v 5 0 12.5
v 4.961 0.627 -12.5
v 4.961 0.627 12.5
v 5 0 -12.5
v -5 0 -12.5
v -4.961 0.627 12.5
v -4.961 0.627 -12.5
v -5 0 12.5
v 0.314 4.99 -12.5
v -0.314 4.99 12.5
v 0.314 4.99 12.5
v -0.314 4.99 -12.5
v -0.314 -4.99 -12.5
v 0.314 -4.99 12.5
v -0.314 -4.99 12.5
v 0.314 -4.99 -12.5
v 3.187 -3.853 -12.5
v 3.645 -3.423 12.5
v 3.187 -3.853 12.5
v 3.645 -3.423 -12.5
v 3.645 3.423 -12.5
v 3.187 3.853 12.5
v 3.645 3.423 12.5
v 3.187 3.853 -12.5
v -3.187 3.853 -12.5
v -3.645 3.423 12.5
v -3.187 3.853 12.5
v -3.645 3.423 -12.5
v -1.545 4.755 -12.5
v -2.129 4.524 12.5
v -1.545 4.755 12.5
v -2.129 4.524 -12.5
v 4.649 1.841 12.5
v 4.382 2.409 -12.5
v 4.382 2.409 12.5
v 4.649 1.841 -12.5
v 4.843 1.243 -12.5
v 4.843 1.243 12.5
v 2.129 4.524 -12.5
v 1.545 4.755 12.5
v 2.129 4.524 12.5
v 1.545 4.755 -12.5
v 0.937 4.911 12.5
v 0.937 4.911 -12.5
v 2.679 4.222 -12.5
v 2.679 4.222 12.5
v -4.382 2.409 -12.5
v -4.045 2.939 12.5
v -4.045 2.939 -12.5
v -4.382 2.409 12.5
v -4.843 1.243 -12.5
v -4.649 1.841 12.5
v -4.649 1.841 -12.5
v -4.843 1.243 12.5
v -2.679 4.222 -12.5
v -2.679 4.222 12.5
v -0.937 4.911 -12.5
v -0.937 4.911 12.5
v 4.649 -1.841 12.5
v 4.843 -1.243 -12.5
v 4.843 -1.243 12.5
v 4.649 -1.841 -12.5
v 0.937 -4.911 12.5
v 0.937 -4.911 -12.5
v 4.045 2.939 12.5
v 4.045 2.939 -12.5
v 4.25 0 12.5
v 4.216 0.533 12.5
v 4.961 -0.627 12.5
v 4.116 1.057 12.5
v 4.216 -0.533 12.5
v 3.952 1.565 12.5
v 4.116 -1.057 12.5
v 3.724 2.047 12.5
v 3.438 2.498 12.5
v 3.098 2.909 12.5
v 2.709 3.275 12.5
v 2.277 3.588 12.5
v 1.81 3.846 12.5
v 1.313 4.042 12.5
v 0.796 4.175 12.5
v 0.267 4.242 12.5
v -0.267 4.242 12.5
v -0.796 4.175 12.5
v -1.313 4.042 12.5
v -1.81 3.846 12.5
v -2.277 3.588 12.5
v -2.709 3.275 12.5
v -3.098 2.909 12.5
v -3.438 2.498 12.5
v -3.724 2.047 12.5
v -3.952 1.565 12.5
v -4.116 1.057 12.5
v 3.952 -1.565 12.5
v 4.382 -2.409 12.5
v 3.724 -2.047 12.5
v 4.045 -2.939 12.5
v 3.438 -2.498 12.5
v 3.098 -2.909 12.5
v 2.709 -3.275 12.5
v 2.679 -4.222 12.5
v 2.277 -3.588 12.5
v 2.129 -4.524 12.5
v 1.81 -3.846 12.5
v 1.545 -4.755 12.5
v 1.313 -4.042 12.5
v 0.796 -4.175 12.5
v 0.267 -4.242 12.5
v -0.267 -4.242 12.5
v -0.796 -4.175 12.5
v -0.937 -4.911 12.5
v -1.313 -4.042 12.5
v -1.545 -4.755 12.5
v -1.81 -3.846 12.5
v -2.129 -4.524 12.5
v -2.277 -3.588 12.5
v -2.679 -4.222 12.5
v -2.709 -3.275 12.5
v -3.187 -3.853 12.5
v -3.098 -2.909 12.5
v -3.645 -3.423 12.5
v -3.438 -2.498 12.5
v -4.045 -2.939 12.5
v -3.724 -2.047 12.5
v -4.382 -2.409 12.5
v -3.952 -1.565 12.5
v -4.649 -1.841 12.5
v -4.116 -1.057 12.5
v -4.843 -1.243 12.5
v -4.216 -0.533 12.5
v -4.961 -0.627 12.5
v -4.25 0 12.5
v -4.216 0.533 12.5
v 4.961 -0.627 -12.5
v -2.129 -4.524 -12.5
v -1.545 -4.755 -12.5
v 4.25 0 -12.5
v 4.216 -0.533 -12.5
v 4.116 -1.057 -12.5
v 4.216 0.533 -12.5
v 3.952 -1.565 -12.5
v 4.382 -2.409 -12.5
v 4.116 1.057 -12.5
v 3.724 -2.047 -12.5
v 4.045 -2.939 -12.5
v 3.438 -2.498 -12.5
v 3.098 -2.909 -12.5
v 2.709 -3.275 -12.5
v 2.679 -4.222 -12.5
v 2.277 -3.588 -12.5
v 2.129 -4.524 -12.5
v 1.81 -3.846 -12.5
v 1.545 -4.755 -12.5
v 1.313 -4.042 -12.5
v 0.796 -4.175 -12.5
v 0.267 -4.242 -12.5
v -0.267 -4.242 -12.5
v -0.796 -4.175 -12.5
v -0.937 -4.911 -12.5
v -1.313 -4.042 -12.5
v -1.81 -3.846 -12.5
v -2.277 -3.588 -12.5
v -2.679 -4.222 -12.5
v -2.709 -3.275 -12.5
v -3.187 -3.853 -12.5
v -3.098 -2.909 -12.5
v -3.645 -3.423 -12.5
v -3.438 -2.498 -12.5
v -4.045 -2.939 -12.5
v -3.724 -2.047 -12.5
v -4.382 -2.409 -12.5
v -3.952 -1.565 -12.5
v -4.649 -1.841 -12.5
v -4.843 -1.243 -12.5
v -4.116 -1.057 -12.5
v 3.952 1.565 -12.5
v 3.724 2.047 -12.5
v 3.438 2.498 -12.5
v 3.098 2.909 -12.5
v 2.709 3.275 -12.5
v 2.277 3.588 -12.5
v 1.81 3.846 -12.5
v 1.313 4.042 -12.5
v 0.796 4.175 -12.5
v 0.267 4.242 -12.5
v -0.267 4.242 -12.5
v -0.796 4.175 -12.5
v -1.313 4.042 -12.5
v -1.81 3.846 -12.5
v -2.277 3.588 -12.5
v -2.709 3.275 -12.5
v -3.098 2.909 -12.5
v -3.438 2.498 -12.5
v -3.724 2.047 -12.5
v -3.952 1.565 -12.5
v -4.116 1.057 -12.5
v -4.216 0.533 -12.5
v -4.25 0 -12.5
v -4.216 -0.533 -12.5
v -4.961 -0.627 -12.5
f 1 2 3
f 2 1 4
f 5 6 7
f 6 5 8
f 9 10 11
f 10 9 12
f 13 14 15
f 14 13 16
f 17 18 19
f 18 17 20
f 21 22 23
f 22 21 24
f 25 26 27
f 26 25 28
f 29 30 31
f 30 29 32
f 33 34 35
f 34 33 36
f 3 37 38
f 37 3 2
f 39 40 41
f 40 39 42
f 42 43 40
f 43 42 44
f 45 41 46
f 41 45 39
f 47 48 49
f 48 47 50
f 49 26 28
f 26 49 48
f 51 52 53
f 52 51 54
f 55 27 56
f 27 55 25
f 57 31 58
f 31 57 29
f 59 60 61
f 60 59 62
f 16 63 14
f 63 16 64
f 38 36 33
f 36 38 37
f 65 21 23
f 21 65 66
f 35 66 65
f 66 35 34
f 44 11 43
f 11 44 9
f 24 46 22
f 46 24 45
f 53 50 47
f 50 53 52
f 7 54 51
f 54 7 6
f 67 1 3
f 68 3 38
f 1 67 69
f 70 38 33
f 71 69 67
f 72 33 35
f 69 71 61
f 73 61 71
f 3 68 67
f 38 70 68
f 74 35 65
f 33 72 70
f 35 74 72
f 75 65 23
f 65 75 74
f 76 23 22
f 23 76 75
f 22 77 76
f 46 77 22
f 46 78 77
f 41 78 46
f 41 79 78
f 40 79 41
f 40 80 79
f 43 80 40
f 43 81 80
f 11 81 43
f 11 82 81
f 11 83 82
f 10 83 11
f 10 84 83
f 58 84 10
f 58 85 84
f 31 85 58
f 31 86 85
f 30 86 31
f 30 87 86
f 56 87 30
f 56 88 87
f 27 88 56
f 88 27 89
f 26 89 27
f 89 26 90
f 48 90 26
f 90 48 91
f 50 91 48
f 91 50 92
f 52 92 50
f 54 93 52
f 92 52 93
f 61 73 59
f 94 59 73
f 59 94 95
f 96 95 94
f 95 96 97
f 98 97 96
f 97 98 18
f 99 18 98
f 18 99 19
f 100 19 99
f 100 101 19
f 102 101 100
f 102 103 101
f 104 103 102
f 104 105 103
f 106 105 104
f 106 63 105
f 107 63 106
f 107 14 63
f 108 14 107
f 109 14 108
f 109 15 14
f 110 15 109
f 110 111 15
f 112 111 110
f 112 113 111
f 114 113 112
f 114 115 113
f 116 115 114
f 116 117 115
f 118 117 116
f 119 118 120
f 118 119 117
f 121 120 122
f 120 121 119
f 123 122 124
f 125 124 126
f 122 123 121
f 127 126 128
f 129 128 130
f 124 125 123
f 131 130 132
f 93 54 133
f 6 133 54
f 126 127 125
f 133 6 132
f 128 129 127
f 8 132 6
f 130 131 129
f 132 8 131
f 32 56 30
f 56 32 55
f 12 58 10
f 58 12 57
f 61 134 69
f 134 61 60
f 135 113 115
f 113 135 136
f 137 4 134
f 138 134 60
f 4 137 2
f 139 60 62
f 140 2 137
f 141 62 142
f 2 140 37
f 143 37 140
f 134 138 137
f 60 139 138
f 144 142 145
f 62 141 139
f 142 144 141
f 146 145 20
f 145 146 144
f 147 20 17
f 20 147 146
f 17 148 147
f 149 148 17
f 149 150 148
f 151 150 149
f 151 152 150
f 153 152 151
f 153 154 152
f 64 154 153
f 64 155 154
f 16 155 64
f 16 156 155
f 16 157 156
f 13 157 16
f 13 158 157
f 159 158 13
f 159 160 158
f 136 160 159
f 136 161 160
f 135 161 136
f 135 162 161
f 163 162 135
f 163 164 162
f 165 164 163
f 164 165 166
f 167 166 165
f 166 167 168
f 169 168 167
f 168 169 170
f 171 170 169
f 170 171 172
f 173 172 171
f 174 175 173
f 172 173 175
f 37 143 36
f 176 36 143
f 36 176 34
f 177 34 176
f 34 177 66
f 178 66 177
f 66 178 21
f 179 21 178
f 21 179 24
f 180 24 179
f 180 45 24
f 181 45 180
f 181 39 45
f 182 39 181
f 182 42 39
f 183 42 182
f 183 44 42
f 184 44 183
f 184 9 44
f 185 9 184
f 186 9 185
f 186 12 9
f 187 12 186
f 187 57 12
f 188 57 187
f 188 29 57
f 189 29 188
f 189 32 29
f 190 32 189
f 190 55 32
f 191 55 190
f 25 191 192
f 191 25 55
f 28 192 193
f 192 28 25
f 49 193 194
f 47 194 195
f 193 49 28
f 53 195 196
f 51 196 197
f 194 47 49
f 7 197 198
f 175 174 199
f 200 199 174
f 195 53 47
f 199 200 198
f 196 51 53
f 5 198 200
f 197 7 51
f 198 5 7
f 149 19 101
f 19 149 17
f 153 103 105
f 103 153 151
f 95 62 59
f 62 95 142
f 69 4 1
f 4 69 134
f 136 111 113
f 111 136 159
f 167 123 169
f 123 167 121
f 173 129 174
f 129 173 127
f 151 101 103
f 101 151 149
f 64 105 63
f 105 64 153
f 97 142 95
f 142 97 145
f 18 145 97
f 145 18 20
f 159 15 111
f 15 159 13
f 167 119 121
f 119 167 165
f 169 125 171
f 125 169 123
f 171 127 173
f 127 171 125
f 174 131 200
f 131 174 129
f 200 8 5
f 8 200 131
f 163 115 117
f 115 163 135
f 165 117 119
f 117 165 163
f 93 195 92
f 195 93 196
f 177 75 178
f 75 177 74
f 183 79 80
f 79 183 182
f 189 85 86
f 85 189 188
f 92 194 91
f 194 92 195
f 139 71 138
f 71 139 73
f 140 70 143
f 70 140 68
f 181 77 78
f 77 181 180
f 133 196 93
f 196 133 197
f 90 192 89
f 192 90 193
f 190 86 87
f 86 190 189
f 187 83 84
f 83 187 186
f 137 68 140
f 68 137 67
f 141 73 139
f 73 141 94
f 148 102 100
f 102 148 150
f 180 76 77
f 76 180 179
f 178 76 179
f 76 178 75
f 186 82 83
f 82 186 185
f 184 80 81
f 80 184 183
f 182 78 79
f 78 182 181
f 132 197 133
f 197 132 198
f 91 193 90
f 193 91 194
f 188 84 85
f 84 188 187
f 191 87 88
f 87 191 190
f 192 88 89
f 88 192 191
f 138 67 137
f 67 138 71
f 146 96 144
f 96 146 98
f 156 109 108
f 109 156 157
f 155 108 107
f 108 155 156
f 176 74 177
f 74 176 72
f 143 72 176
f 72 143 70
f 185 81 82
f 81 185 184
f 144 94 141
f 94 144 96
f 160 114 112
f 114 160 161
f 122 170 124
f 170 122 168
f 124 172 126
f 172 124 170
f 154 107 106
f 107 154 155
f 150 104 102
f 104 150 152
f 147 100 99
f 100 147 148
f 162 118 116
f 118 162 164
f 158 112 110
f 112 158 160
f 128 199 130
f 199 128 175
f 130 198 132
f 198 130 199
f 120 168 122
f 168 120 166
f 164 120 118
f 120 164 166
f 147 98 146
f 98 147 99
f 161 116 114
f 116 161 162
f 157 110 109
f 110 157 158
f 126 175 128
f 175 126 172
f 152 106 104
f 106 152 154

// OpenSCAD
$fn = 50;


difference() {
	union() {
		translate(v = [0, 0, -12.5000000000]) {
			cylinder(h = 25, r = 5.0000000000);
		}
	}
	union() {
		translate(v = [0, 0, -100.0000000000]) {
			cylinder(h = 200, r = 4.2500000000);
		}
	}
}
